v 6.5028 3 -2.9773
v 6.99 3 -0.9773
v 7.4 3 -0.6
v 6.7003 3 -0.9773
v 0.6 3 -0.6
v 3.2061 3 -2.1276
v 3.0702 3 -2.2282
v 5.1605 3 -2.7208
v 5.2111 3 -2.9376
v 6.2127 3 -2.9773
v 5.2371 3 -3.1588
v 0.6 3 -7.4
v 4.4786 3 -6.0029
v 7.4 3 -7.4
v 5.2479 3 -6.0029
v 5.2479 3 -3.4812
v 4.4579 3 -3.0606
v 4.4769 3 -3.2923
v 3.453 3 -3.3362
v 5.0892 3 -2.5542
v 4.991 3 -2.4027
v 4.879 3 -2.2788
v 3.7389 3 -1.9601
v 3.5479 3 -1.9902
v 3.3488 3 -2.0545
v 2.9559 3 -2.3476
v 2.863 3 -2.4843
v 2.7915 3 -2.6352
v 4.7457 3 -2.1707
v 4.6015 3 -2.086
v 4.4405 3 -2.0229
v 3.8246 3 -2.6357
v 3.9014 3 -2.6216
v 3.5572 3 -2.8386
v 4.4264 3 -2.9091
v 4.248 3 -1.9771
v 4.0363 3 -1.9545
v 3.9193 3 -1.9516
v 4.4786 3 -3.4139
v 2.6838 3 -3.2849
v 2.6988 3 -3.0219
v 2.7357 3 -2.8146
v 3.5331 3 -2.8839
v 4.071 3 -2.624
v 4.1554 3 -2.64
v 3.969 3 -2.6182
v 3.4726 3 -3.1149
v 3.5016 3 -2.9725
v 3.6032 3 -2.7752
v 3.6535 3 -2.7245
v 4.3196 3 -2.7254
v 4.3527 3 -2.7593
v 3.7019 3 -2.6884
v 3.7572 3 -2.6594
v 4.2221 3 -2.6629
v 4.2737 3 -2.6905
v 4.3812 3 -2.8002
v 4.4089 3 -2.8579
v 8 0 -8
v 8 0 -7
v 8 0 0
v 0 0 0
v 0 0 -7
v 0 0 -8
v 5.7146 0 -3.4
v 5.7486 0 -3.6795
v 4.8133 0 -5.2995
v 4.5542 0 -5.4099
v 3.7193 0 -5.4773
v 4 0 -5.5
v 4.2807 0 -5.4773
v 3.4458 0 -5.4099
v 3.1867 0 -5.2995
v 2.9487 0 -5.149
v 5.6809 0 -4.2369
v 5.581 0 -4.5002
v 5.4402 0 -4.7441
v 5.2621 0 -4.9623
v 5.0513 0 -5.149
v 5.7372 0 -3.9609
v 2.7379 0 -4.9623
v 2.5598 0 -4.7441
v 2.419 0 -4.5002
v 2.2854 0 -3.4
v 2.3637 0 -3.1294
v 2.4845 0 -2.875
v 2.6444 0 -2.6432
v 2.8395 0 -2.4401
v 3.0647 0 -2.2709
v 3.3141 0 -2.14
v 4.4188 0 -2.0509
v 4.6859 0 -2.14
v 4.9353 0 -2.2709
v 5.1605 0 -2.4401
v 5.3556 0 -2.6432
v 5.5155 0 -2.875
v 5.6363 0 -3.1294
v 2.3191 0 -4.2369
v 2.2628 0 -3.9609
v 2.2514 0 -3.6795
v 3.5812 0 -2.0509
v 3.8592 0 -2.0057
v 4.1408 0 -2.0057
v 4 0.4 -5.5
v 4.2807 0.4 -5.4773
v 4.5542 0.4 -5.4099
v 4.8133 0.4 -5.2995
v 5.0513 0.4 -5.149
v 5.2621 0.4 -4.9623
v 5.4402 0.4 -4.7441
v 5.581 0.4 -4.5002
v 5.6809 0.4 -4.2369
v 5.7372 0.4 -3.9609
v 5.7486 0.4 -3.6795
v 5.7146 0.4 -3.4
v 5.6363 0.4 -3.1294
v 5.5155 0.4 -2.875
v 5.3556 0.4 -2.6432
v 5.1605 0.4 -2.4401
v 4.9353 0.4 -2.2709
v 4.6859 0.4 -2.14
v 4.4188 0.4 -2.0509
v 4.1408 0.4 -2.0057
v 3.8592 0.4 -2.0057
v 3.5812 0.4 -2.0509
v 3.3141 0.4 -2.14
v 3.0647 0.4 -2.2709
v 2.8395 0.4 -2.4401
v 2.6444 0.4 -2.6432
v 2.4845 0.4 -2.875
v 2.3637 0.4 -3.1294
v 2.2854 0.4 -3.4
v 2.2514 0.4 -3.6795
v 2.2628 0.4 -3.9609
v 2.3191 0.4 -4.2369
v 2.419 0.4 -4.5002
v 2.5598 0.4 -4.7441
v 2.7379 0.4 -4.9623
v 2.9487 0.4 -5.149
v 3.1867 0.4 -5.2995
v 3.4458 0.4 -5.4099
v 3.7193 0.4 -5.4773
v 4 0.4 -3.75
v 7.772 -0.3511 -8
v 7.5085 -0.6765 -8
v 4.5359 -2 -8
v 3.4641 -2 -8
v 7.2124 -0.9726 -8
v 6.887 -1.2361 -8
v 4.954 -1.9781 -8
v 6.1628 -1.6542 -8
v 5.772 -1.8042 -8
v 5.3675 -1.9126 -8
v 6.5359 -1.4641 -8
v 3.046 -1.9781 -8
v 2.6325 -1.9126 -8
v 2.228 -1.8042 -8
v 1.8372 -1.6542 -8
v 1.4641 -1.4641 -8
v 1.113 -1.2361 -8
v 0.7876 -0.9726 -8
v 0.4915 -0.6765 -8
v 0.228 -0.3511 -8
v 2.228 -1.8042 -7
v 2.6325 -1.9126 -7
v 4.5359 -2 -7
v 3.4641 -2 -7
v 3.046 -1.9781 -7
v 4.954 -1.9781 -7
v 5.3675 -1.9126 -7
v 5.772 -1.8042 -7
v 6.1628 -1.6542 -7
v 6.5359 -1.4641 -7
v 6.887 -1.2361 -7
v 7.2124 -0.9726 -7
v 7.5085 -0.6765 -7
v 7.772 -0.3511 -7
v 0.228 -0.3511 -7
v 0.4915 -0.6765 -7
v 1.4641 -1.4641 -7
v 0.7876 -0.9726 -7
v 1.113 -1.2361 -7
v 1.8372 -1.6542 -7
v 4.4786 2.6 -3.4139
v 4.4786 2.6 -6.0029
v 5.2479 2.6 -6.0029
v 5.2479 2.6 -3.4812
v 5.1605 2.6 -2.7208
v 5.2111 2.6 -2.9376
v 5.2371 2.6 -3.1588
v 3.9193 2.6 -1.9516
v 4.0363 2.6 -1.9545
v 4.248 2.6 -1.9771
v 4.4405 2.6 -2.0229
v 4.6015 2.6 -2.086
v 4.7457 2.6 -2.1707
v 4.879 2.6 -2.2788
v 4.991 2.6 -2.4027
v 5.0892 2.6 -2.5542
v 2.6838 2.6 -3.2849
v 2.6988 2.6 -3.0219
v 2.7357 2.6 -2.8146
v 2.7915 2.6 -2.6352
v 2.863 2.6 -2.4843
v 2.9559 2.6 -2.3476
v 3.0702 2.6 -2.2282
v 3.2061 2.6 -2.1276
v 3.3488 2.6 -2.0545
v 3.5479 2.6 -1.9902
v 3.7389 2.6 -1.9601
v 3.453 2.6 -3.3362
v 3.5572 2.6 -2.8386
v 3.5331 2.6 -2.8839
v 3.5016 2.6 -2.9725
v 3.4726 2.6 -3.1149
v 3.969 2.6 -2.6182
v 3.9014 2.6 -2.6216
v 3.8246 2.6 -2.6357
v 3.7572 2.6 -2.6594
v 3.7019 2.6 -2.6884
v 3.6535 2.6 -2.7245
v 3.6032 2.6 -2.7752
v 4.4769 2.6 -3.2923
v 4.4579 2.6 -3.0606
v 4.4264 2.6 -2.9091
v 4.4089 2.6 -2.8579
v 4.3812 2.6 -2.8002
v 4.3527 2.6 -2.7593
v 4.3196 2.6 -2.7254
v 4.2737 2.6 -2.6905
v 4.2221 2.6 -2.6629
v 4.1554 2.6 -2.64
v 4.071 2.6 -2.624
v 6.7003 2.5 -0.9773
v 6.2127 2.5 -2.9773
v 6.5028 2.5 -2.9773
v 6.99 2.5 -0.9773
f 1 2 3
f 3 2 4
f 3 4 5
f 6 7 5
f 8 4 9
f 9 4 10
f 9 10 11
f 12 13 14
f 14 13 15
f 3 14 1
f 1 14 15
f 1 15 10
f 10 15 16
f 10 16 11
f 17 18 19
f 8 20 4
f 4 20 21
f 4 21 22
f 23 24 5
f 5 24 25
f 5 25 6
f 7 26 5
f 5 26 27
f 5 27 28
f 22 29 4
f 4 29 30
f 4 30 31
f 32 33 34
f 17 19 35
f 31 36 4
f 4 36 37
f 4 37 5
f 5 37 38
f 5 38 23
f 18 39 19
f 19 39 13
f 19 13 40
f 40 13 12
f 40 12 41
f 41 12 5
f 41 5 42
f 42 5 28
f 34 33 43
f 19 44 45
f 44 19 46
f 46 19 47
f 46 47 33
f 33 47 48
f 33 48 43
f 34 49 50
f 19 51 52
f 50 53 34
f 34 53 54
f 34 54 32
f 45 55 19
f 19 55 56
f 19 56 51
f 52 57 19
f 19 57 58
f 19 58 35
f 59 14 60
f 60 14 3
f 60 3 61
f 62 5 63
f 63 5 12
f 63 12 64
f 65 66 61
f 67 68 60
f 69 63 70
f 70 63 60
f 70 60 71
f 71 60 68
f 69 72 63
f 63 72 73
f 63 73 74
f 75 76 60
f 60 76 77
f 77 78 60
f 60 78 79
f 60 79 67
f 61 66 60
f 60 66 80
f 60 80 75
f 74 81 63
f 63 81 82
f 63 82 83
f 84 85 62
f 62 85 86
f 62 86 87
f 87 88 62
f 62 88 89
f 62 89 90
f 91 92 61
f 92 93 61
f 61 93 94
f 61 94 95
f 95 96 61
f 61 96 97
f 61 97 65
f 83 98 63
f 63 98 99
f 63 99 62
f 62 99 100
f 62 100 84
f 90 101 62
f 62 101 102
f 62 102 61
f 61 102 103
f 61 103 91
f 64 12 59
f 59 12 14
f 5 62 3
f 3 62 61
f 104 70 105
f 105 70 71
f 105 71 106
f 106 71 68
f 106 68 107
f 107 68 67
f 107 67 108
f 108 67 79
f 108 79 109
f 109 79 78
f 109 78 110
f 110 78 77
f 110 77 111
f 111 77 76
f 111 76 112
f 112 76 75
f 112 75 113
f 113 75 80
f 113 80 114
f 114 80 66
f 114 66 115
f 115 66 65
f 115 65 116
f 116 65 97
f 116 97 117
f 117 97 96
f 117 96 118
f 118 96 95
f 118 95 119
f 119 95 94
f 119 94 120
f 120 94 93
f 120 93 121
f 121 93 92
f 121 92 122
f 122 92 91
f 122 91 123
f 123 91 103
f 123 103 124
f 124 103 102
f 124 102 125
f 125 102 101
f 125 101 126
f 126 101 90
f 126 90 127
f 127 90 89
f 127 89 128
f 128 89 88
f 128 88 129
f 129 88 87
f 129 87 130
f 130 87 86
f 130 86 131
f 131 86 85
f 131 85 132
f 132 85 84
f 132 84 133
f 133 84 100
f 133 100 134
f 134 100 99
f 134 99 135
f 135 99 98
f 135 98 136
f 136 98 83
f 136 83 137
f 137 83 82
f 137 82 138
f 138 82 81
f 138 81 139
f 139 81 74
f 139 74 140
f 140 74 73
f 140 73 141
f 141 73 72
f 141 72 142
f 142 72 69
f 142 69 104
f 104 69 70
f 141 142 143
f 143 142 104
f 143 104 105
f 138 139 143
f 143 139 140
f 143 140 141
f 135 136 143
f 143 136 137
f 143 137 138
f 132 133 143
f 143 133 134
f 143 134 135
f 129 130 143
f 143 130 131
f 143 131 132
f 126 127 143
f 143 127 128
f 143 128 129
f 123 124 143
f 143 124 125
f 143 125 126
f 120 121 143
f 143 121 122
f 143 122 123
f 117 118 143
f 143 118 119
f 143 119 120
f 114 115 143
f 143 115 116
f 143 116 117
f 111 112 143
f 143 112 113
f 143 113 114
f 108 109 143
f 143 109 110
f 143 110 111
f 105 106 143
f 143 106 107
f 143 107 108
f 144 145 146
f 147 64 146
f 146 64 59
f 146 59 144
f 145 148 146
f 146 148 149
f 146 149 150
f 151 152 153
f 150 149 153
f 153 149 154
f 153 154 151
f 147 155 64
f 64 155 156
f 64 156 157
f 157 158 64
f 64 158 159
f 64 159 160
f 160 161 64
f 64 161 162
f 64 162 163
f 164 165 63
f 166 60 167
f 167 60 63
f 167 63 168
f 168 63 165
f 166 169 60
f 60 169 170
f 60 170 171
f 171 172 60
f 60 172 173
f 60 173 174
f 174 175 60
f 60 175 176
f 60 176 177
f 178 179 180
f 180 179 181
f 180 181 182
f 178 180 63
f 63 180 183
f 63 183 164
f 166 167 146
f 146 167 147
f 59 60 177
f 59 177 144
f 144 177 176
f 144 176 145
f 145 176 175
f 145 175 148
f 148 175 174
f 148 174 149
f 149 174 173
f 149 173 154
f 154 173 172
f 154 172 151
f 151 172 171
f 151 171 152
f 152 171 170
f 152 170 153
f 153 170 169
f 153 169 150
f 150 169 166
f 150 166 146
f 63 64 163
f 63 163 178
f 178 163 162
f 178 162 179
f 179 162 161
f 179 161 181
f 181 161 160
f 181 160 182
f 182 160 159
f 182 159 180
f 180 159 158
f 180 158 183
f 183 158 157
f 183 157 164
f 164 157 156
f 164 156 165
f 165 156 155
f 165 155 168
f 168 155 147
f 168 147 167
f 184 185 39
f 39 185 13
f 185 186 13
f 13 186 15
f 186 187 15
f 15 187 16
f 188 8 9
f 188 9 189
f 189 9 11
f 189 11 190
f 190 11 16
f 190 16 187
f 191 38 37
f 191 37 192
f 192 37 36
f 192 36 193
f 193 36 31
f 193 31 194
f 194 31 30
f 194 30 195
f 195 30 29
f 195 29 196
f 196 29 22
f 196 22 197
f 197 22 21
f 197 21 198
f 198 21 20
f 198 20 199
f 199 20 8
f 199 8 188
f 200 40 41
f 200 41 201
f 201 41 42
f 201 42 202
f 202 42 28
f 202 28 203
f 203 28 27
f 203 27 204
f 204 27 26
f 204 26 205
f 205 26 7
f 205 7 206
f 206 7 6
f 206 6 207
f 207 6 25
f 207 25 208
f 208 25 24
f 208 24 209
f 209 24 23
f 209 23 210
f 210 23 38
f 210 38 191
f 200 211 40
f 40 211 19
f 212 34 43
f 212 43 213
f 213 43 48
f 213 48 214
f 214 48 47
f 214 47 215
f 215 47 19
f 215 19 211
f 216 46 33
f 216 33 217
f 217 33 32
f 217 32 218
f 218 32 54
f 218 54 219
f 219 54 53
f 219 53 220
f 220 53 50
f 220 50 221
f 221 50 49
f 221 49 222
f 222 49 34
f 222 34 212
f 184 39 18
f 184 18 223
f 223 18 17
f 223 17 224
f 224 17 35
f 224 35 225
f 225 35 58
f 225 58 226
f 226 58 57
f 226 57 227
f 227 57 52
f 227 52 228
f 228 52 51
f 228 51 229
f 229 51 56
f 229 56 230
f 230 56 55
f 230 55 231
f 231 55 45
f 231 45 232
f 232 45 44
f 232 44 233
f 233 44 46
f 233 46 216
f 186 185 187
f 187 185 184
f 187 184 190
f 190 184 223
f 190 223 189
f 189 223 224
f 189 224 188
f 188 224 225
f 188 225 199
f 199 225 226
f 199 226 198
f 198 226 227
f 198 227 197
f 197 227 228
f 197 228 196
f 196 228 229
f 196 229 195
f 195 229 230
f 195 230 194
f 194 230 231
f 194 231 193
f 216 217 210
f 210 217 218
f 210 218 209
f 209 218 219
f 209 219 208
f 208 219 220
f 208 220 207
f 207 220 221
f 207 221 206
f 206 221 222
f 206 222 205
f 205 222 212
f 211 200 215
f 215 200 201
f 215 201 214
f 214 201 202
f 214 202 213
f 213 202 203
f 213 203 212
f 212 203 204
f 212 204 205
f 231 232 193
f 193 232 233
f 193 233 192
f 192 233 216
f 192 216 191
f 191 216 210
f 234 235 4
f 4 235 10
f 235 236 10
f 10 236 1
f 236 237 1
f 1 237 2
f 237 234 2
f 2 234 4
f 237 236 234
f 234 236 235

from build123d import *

# Parameters (mm, degrees)
SKETCH1_W               = 8
SKETCH1_H               = 8
BOSS_EXTRUDE1_DEPTH     = 3
CUT_EXTRUDE1_DEPTH      = 12.704699911
CUT_EXTRUDE1_DEPTH_BACK = 12.704699911
CUT_EXTRUDE2_DEPTH      = 11
SKETCH4_R               = 1.75
CUT_EXTRUDE3_DEPTH      = 0.4
SKETCH5_W               = 8
SKETCH5_H               = 1
BOSS_EXTRUDE2_DEPTH     = 2
FILLET1_R               = 4
CUT_EXTRUDE4_DEPTH      = 0.4
CUT_EXTRUDE5_DEPTH      = 0.5


with BuildPart() as part:
    # Sketch1 → Boss-Extrude1 (new body)
    with BuildSketch(Plane(origin=(0, 0, 0), x_dir=(1, 0, 0), z_dir=(0, 1, 0))):
        with Locations((4, 4)):
            Rectangle(SKETCH1_W, SKETCH1_H)
    extrude(amount=BOSS_EXTRUDE1_DEPTH)

    # Sketch2 → Cut-Extrude1 (cut, two sides: drawn at the far end of the back side and taken through both)
    with BuildSketch(Plane.XY.offset(-CUT_EXTRUDE1_DEPTH_BACK)):
        Polygon((0, 0), (0.6, 3), (0, 3), align=None)
        Polygon((8, 0), (7.4, 3), (8, 3), align=None)
    extrude(amount=CUT_EXTRUDE1_DEPTH + CUT_EXTRUDE1_DEPTH_BACK, mode=Mode.SUBTRACT)

    # Sketch3 → Cut-Extrude2 (cut)
    with BuildSketch(Plane(origin=(0, 0, 0), x_dir=(0, 0, -1), z_dir=(1, 0, 0))):
        Polygon((0, 0), (0.6, 3), (0, 3), align=None)
        Polygon((8, 3), (7.4, 3), (8, 0), align=None)
    extrude(amount=CUT_EXTRUDE2_DEPTH, mode=Mode.SUBTRACT)

    # Sketch4 → Cut-Extrude3 (cut)
    with BuildSketch(Plane.XZ):
        with Locations(Location((4, -3.75, 0), (0, 0, 270))):
            Circle(SKETCH4_R)
    extrude(amount=-CUT_EXTRUDE3_DEPTH, mode=Mode.SUBTRACT)

    # Sketch5 → Boss-Extrude2 (add)
    with BuildSketch(Plane.XZ):
        with Locations((4, -7.5)):
            Rectangle(SKETCH5_W, SKETCH5_H)
    extrude(amount=BOSS_EXTRUDE2_DEPTH)

    # Fillet1
    # the kernel refuses this fillet: 4 mm, written as the material it takes off along each edge
    with BuildSketch(Plane(origin=(8, -2, -16.660254038), x_dir=(0, 1, 0), z_dir=(0, 0, 1)), Plane(origin=(0, -2, 1.660254038), x_dir=(0, 1, 0), z_dir=(0, 0, -1))) as fillet1_piece_1:
        with BuildLine():
            CenterArc((4, 3.464101615), FILLET1_R, 180, 60)
            Line((0, 3.464101615), (-0.08, 3.464101615))
            Line((-0.08, 3.464101615), (-0.08, 0))
            Line((-0.08, 0), (0, -0.08))
            ThreePointArc((0, -0.08), (1, -0.08), (1.96, -0.069282032))
            Line((1.96, -0.069282032), (2, 0))
        make_face()
    extrude(amount=18.320508076, mode=Mode.SUBTRACT)

    # Sketch6 → Cut-Extrude4 (cut)
    with BuildSketch(Plane(origin=(0, 3, 0), x_dir=(1, 0, 0), z_dir=(0, 1, 0))):
        with BuildLine():
            Line((4.478635236, 6.002856352), (5.247866005, 6.002856352))
            Line((5.247866005, 6.002856352), (5.247866005, 3.481221736))
            add(Edge.make_bspline(
                [(5.247866005, 3.481221736), (5.247522255, 3.441153869), (5.246855206, 3.363401883), (5.242756502, 3.250390465), (5.236658321, 3.14454193), (5.227277222, 3.045871471), (5.21405872, 2.954592388), (5.200049867, 2.869976575), (5.183041427, 2.792451692), (5.167800036, 2.743951306), (5.160526262, 2.72080507)],
                knots=[0, 0, 0, 0, 1.251619961, 2.428777588, 3.532126049, 4.56323557, 5.523704531, 6.412540087, 7.242403515, 8, 8, 8, 8], degree=3))
            add(Edge.make_bspline(
                [(5.160526262, 2.72080507), (5.150361081, 2.692282601), (5.130243602, 2.635834988), (5.091141653, 2.555314881), (5.046176431, 2.479084315), (4.995474484, 2.406812938), (4.939514717, 2.338210987), (4.876399077, 2.275086649), (4.8083478, 2.215238098), (4.733446681, 2.161145289), (4.653580791, 2.110709794), (4.566475051, 2.068688963), (4.473843299, 2.032340387), (4.374908104, 2.002816628), (4.269640778, 1.979716073), (4.158311001, 1.962901894), (4.040770466, 1.95334773), (3.960490164, 1.952175274), (3.919340364, 1.9515743)],
                knots=[0, 0, 0, 0, 0.925533072, 1.831683394, 2.73255258, 3.630007683, 4.529542467, 5.436465751, 6.357118906, 7.298274949, 8.259461937, 9.242242071, 10.251058183, 11.300341426, 12.396409345, 13.544807631, 14.74152597, 16, 16, 16, 16], degree=3))
            add(Edge.make_bspline(
                [(3.919340364, 1.9515743), (3.871225528, 1.952737211), (3.777685944, 1.954998015), (3.641661475, 1.97000769), (3.514100564, 1.996260242), (3.395387048, 2.034179675), (3.284307874, 2.08131717), (3.182206561, 2.140114726), (3.088540477, 2.209392701), (3.003918711, 2.289363431), (2.928299433, 2.379218215), (2.863026475, 2.479745415), (2.80762712, 2.589893743), (2.762984692, 2.710161506), (2.727739397, 2.839972913), (2.702317462, 2.979601288), (2.687147894, 3.129126134), (2.684913172, 3.2319872), (2.683763441, 3.284907634)],
                knots=[0, 0, 0, 0, 1.114068574, 2.165849827, 3.164101702, 4.124467949, 5.046988974, 5.952942428, 6.846011651, 7.738523925, 8.642829306, 9.558838605, 10.50752403, 11.491963144, 12.524197802, 13.618364352, 14.774685164, 16, 16, 16, 16], degree=3))
            Line((2.683763441, 3.284907634), (3.45299421, 3.336189685))
            add(Edge.make_bspline(
                [(3.45299421, 3.336189685), (3.454375767, 3.307862598), (3.45702498, 3.25354382), (3.464380935, 3.175240866), (3.473682687, 3.103271277), (3.485853837, 3.037851064), (3.498960823, 2.978427444), (3.515987002, 2.926169857), (3.533886556, 2.879240769), (3.549608387, 2.851783511), (3.557160877, 2.838593531)],
                knots=[0, 0, 0, 0, 1.326609226, 2.543847584, 3.678365909, 4.719972403, 5.656527627, 6.521948534, 7.28997025, 8, 8, 8, 8], degree=3))
            add(Edge.make_bspline(
                [(3.557160877, 2.838593531), (3.56872297, 2.821148121), (3.59147861, 2.786813382), (3.632990929, 2.742071605), (3.677558537, 2.702955843), (3.727619554, 2.672203009), (3.781780527, 2.648016829), (3.840448037, 2.63044225), (3.903460331, 2.619785853), (3.946808463, 2.61876437), (3.969019851, 2.618240967)],
                knots=[0, 0, 0, 0, 1.023658308, 2.014687051, 2.979722519, 3.920049697, 4.880550909, 5.878122304, 6.912759386, 8, 8, 8, 8], degree=3))
            add(Edge.make_bspline(
                [(3.969019851, 2.618240967), (3.991477248, 2.618659453), (4.034647527, 2.619463917), (4.09686091, 2.626779219), (4.154063033, 2.638632824), (4.206285054, 2.655294856), (4.253703868, 2.676924623), (4.295268393, 2.704596166), (4.33276969, 2.735732915), (4.36516489, 2.773188264), (4.392766236, 2.818318957), (4.415812105, 2.873248962), (4.43563784, 2.938204221), (4.450960178, 3.01367855), (4.464002509, 3.098949399), (4.472183692, 3.194770716), (4.478064386, 3.300859295), (4.478439634, 3.37517575), (4.478635236, 3.413914044)],
                knots=[0, 0, 0, 0, 0.980314827, 1.884477813, 2.730827652, 3.527503874, 4.27366112, 4.998269146, 5.70163477, 6.396145331, 7.150281155, 8.001758491, 8.990432449, 10.111292654, 11.361572691, 12.75538406, 14.308707205, 16, 16, 16, 16], degree=3))
            Line((4.478635236, 3.413914044), (4.478635236, 6.002856352))
        make_face()
    extrude(amount=-CUT_EXTRUDE4_DEPTH, mode=Mode.SUBTRACT)

    # Sketch7 → Cut-Extrude5 (cut)
    with BuildSketch(Plane(origin=(0, 3, 0), x_dir=(1, 0, 0), z_dir=(0, 1, 0))):
        Polygon((6.21271865, 2.977310221), (6.502782752, 2.977310221), (6.989962239, 0.977310221), (6.700298778, 0.977310221), align=None)
    extrude(amount=-CUT_EXTRUDE5_DEPTH, mode=Mode.SUBTRACT)


solid = part.part
